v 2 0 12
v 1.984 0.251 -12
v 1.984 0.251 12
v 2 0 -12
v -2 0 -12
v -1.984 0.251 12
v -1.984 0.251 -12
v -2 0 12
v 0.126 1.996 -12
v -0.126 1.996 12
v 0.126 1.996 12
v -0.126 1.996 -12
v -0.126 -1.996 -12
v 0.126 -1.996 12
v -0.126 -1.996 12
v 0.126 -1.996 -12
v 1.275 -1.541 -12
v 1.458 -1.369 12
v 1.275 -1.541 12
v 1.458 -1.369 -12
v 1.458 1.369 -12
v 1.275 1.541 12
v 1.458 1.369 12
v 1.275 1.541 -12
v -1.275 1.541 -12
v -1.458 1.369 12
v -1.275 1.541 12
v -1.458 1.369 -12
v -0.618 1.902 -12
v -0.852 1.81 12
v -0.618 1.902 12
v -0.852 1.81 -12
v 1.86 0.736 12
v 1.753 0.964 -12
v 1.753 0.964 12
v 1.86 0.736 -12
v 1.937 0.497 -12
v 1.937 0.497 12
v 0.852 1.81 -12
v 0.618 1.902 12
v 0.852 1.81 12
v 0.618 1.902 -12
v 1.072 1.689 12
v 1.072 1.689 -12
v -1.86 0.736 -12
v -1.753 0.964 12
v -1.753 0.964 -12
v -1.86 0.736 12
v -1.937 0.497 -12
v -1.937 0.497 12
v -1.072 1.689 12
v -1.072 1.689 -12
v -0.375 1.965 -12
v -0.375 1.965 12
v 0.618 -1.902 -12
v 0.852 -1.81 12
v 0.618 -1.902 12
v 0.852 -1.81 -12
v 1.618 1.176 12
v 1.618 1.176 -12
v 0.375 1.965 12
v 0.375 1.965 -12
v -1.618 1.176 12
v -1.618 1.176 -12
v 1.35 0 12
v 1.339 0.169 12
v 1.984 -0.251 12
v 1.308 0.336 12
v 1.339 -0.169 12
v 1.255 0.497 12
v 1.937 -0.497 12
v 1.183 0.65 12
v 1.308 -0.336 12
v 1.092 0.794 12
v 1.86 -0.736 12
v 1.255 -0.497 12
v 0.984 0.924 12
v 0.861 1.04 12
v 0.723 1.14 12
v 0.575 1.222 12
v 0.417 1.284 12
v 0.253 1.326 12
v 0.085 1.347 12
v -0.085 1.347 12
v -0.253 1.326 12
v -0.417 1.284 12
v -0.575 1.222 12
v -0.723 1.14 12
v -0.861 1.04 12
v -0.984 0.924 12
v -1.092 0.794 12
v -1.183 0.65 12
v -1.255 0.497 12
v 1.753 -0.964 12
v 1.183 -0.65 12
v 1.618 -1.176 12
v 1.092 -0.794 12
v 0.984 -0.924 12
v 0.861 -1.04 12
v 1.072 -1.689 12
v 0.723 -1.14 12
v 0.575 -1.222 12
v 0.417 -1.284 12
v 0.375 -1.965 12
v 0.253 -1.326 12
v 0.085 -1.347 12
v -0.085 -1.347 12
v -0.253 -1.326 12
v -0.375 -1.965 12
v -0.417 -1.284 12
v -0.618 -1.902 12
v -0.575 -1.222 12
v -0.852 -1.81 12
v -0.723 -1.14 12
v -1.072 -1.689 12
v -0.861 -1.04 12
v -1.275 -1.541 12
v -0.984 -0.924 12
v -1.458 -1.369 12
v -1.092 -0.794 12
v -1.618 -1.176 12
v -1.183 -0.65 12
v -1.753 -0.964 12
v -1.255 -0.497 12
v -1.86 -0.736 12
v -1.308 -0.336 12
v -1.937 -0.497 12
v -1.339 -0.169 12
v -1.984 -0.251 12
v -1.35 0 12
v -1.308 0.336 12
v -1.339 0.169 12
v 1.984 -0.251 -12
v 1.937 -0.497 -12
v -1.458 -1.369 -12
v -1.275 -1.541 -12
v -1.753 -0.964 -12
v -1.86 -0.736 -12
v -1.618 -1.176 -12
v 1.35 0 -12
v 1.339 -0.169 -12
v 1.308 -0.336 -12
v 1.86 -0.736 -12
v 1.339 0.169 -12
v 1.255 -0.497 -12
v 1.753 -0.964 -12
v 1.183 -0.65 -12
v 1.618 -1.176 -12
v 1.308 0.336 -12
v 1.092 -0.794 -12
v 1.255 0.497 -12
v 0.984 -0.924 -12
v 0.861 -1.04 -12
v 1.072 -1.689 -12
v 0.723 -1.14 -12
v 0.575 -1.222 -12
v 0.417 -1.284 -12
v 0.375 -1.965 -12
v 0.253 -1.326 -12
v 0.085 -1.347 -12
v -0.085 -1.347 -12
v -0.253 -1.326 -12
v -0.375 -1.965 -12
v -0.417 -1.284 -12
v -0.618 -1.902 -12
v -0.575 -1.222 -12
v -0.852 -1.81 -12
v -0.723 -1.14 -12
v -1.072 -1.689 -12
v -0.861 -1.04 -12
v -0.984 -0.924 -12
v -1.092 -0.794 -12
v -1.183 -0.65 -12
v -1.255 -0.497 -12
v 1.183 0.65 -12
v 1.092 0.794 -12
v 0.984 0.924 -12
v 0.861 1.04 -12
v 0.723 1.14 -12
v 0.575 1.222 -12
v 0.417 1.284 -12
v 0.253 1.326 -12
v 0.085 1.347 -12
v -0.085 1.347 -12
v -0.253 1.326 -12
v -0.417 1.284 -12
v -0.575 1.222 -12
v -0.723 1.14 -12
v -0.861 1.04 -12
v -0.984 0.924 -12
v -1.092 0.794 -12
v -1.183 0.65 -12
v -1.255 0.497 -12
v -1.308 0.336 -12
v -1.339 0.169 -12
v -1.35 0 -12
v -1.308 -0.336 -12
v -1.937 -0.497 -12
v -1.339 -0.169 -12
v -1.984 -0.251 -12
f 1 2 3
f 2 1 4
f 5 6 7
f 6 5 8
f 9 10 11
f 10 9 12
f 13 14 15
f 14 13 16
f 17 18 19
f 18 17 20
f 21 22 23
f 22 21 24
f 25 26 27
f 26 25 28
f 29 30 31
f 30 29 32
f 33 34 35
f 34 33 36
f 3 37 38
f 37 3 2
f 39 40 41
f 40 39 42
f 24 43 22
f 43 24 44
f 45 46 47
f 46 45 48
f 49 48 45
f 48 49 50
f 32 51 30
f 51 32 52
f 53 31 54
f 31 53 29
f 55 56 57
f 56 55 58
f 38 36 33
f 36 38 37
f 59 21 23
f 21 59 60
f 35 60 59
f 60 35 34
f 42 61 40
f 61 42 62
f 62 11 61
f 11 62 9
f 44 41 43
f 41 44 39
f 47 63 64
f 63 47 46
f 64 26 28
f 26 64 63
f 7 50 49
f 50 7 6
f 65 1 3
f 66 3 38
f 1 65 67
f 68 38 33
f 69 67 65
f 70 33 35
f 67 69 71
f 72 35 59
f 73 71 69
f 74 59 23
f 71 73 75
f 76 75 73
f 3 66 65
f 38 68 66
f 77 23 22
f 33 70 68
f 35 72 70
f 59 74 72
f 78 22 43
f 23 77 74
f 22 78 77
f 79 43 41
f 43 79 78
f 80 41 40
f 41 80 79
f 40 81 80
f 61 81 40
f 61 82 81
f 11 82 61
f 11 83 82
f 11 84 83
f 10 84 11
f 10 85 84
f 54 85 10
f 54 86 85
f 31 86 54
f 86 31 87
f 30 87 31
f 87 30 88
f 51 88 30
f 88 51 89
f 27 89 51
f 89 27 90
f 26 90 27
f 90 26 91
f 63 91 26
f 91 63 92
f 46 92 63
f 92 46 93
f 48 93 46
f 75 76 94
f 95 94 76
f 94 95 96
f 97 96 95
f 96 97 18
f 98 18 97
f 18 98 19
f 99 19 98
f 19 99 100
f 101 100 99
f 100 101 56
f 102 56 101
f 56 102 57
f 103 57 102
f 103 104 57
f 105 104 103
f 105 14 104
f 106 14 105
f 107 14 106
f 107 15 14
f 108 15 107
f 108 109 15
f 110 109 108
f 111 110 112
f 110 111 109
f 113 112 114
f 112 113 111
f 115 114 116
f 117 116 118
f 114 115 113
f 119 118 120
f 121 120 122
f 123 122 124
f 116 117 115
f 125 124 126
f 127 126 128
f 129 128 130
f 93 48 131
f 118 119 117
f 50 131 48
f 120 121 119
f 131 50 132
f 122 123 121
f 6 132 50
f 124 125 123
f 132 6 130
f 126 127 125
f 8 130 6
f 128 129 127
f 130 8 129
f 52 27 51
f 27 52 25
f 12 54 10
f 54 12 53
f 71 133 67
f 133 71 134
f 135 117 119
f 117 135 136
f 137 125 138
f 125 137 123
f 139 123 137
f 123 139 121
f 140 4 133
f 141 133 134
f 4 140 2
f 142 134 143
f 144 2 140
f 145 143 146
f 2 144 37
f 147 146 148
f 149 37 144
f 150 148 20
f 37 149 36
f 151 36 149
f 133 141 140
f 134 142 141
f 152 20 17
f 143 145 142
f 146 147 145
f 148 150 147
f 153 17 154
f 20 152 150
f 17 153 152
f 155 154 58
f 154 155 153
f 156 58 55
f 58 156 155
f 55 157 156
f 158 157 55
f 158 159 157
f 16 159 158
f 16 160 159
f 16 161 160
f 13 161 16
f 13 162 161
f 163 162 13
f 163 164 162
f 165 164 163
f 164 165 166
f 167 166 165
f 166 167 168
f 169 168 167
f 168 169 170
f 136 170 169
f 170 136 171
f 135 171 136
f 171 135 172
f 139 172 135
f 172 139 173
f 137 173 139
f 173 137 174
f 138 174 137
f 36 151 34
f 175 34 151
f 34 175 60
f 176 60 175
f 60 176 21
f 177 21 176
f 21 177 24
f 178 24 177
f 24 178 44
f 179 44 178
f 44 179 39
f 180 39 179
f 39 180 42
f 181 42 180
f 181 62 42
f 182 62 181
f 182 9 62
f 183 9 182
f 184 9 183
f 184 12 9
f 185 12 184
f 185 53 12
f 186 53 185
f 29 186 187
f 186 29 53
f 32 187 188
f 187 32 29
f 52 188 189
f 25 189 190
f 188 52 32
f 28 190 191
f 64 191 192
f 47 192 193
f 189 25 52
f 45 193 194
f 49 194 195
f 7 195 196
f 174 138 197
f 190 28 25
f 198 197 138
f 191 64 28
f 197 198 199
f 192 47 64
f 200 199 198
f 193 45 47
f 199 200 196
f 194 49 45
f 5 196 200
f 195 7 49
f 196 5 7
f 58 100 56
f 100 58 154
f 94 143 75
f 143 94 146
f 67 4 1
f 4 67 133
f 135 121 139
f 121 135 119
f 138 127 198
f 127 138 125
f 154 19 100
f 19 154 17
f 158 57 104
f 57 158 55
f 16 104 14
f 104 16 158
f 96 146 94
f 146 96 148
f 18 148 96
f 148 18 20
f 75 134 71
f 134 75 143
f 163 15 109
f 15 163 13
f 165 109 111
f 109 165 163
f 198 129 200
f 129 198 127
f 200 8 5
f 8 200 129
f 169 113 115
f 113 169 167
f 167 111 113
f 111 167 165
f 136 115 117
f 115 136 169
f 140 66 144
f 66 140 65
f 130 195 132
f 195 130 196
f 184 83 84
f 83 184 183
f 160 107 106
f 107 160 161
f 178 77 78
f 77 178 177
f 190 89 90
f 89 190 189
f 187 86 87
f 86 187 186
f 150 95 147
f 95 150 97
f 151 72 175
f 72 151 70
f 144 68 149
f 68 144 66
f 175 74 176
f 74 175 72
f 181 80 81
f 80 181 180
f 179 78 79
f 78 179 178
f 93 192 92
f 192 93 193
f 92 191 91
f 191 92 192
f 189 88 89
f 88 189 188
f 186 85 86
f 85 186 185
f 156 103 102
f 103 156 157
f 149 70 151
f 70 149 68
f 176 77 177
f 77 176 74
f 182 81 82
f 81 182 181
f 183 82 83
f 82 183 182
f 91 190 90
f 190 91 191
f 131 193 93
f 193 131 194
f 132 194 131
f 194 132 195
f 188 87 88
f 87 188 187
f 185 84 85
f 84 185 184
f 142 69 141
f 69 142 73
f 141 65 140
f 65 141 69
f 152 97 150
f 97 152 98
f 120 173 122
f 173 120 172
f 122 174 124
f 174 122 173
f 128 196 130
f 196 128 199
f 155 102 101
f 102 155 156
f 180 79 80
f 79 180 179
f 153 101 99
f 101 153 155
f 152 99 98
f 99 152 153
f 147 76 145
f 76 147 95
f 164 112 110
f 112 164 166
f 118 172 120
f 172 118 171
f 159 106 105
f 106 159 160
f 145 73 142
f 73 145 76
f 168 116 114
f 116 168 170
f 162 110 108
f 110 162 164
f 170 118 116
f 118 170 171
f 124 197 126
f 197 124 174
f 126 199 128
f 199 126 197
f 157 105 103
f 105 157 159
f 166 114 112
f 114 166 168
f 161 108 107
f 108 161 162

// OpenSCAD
$fn = 50;


difference() {
	union() {
		translate(v = [0, 0, -12.0000000000]) {
			cylinder(h = 24, r = 2.0000000000);
		}
	}
	union() {
		translate(v = [0, 0, -100.0000000000]) {
			cylinder(h = 200, r = 1.3500000000);
		}
	}
}
